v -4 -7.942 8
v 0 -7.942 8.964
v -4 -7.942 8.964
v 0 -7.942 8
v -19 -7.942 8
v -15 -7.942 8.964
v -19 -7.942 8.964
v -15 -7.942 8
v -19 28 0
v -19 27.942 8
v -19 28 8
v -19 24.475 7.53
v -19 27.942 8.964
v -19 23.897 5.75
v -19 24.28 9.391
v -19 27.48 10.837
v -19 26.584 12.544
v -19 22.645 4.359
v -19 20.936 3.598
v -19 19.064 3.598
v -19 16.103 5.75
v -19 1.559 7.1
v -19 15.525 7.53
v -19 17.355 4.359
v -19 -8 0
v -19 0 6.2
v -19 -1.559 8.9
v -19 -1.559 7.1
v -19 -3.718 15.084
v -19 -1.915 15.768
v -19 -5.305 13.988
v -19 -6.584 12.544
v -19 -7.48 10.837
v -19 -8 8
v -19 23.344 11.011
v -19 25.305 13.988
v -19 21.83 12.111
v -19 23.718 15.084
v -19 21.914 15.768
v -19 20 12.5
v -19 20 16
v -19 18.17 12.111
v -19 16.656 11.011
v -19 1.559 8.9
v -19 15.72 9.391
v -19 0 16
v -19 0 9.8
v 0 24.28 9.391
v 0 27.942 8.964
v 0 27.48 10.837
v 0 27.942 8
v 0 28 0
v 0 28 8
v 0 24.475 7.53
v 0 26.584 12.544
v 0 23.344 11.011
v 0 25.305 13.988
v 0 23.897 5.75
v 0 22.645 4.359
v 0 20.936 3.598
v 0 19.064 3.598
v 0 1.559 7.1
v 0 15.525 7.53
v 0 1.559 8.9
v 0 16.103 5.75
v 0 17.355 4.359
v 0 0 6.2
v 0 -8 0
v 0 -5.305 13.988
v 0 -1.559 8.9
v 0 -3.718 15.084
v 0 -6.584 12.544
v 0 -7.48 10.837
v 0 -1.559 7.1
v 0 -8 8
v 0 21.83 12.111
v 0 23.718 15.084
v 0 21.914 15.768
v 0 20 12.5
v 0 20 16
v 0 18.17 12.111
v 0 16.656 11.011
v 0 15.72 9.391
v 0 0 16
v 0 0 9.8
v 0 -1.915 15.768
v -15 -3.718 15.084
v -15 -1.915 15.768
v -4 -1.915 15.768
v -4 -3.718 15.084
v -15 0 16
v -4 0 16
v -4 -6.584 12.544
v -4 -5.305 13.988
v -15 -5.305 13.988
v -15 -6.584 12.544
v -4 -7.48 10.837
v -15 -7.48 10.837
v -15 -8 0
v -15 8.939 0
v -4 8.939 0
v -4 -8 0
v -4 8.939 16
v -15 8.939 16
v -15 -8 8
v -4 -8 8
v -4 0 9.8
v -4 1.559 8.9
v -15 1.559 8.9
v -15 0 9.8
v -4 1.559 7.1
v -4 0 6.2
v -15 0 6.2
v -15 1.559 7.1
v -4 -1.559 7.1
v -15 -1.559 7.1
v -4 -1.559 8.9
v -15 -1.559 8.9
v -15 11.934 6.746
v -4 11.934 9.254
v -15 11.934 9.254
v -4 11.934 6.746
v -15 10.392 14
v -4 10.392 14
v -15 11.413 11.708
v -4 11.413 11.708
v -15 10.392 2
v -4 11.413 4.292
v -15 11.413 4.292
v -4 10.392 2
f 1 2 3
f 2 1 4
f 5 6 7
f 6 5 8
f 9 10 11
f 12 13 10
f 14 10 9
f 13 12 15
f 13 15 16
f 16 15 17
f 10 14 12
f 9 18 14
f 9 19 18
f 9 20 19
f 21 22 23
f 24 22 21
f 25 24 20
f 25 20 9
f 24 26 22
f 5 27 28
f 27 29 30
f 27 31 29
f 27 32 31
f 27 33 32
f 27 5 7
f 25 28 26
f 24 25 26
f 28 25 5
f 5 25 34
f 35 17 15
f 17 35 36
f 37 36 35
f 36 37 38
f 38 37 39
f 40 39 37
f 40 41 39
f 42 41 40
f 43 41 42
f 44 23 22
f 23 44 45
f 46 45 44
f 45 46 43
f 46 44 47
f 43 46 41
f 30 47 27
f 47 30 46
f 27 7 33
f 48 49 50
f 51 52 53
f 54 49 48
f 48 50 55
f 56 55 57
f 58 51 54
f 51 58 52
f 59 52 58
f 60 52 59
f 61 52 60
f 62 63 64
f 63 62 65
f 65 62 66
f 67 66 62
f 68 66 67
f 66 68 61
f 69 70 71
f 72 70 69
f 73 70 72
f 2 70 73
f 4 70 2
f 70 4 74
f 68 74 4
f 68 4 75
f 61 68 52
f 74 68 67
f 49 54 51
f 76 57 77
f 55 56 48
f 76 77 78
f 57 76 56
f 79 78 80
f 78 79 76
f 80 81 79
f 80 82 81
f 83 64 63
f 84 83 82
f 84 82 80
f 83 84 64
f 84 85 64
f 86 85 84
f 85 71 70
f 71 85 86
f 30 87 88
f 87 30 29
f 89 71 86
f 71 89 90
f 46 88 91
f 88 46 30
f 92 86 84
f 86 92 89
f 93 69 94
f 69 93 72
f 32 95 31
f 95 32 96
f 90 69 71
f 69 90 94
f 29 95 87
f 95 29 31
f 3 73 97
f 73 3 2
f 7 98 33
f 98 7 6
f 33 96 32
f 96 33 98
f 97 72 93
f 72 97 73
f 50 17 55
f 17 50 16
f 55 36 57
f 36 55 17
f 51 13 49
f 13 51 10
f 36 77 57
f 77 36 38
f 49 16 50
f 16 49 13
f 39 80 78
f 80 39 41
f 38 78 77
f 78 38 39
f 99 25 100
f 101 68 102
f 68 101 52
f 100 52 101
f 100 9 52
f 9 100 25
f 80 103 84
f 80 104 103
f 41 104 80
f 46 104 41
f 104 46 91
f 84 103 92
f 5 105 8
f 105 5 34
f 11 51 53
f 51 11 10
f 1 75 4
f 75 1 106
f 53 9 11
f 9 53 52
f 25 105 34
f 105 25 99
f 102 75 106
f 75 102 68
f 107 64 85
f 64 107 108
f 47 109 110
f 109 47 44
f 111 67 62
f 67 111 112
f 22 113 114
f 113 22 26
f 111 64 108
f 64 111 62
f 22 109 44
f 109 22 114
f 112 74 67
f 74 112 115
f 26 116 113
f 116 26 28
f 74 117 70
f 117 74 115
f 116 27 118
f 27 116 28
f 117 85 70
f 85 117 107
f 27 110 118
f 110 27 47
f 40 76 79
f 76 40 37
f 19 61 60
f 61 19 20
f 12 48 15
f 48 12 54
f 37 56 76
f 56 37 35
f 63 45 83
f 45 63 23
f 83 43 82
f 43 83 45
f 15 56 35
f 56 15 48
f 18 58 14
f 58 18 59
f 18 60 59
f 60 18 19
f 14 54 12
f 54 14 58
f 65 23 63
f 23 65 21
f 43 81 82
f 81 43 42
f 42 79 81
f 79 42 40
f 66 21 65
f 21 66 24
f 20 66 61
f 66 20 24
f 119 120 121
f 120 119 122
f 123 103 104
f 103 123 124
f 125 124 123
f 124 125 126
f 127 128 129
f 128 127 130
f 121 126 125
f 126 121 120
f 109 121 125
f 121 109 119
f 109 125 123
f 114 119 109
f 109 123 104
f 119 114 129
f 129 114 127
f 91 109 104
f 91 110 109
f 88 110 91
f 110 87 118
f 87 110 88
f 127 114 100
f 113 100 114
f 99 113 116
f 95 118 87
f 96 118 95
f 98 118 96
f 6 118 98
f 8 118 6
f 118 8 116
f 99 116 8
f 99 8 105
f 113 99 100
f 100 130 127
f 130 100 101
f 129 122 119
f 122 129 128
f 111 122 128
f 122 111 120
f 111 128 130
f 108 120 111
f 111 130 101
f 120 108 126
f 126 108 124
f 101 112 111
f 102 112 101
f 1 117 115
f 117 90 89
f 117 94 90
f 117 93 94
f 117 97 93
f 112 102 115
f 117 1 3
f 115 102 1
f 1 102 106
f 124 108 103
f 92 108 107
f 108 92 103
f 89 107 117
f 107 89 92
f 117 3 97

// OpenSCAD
// PRUSA iteration3
// Y idler
// GNU GPL v3
// Josef Průša <iam@josefprusa.cz> and contributors
// http://www.reprap.org/wiki/Prusa_Mendel
// http://prusamendel.org


module y_idler_base(){
 translate(v = [0,0,0]) cylinder(h = 19, r=8);	
 translate(v = [0,20,0]) cylinder(h = 19, r=8);
 translate(v = [0,10,9.5]) cube(size = [16,20,19], center=true);
 translate(v = [-4,10,9.5]) cube(size = [8,16+20,19], center=true);
}

module y_idler_holes(){
 translate(v = [0,0,-1]) cylinder(h = 120, r=1.8);	
 translate(v = [0,20,-1]) cylinder(h = 25, r=4.5);
 translate(v = [0,0,4]) cylinder(h = 11, r=12);
}

// Final part
module y_idler(){
 translate(v = [0,0,8])rotate([0,-90,0]) difference(){
  y_idler_base();
  y_idler_holes();
 }
}

y_idler();
